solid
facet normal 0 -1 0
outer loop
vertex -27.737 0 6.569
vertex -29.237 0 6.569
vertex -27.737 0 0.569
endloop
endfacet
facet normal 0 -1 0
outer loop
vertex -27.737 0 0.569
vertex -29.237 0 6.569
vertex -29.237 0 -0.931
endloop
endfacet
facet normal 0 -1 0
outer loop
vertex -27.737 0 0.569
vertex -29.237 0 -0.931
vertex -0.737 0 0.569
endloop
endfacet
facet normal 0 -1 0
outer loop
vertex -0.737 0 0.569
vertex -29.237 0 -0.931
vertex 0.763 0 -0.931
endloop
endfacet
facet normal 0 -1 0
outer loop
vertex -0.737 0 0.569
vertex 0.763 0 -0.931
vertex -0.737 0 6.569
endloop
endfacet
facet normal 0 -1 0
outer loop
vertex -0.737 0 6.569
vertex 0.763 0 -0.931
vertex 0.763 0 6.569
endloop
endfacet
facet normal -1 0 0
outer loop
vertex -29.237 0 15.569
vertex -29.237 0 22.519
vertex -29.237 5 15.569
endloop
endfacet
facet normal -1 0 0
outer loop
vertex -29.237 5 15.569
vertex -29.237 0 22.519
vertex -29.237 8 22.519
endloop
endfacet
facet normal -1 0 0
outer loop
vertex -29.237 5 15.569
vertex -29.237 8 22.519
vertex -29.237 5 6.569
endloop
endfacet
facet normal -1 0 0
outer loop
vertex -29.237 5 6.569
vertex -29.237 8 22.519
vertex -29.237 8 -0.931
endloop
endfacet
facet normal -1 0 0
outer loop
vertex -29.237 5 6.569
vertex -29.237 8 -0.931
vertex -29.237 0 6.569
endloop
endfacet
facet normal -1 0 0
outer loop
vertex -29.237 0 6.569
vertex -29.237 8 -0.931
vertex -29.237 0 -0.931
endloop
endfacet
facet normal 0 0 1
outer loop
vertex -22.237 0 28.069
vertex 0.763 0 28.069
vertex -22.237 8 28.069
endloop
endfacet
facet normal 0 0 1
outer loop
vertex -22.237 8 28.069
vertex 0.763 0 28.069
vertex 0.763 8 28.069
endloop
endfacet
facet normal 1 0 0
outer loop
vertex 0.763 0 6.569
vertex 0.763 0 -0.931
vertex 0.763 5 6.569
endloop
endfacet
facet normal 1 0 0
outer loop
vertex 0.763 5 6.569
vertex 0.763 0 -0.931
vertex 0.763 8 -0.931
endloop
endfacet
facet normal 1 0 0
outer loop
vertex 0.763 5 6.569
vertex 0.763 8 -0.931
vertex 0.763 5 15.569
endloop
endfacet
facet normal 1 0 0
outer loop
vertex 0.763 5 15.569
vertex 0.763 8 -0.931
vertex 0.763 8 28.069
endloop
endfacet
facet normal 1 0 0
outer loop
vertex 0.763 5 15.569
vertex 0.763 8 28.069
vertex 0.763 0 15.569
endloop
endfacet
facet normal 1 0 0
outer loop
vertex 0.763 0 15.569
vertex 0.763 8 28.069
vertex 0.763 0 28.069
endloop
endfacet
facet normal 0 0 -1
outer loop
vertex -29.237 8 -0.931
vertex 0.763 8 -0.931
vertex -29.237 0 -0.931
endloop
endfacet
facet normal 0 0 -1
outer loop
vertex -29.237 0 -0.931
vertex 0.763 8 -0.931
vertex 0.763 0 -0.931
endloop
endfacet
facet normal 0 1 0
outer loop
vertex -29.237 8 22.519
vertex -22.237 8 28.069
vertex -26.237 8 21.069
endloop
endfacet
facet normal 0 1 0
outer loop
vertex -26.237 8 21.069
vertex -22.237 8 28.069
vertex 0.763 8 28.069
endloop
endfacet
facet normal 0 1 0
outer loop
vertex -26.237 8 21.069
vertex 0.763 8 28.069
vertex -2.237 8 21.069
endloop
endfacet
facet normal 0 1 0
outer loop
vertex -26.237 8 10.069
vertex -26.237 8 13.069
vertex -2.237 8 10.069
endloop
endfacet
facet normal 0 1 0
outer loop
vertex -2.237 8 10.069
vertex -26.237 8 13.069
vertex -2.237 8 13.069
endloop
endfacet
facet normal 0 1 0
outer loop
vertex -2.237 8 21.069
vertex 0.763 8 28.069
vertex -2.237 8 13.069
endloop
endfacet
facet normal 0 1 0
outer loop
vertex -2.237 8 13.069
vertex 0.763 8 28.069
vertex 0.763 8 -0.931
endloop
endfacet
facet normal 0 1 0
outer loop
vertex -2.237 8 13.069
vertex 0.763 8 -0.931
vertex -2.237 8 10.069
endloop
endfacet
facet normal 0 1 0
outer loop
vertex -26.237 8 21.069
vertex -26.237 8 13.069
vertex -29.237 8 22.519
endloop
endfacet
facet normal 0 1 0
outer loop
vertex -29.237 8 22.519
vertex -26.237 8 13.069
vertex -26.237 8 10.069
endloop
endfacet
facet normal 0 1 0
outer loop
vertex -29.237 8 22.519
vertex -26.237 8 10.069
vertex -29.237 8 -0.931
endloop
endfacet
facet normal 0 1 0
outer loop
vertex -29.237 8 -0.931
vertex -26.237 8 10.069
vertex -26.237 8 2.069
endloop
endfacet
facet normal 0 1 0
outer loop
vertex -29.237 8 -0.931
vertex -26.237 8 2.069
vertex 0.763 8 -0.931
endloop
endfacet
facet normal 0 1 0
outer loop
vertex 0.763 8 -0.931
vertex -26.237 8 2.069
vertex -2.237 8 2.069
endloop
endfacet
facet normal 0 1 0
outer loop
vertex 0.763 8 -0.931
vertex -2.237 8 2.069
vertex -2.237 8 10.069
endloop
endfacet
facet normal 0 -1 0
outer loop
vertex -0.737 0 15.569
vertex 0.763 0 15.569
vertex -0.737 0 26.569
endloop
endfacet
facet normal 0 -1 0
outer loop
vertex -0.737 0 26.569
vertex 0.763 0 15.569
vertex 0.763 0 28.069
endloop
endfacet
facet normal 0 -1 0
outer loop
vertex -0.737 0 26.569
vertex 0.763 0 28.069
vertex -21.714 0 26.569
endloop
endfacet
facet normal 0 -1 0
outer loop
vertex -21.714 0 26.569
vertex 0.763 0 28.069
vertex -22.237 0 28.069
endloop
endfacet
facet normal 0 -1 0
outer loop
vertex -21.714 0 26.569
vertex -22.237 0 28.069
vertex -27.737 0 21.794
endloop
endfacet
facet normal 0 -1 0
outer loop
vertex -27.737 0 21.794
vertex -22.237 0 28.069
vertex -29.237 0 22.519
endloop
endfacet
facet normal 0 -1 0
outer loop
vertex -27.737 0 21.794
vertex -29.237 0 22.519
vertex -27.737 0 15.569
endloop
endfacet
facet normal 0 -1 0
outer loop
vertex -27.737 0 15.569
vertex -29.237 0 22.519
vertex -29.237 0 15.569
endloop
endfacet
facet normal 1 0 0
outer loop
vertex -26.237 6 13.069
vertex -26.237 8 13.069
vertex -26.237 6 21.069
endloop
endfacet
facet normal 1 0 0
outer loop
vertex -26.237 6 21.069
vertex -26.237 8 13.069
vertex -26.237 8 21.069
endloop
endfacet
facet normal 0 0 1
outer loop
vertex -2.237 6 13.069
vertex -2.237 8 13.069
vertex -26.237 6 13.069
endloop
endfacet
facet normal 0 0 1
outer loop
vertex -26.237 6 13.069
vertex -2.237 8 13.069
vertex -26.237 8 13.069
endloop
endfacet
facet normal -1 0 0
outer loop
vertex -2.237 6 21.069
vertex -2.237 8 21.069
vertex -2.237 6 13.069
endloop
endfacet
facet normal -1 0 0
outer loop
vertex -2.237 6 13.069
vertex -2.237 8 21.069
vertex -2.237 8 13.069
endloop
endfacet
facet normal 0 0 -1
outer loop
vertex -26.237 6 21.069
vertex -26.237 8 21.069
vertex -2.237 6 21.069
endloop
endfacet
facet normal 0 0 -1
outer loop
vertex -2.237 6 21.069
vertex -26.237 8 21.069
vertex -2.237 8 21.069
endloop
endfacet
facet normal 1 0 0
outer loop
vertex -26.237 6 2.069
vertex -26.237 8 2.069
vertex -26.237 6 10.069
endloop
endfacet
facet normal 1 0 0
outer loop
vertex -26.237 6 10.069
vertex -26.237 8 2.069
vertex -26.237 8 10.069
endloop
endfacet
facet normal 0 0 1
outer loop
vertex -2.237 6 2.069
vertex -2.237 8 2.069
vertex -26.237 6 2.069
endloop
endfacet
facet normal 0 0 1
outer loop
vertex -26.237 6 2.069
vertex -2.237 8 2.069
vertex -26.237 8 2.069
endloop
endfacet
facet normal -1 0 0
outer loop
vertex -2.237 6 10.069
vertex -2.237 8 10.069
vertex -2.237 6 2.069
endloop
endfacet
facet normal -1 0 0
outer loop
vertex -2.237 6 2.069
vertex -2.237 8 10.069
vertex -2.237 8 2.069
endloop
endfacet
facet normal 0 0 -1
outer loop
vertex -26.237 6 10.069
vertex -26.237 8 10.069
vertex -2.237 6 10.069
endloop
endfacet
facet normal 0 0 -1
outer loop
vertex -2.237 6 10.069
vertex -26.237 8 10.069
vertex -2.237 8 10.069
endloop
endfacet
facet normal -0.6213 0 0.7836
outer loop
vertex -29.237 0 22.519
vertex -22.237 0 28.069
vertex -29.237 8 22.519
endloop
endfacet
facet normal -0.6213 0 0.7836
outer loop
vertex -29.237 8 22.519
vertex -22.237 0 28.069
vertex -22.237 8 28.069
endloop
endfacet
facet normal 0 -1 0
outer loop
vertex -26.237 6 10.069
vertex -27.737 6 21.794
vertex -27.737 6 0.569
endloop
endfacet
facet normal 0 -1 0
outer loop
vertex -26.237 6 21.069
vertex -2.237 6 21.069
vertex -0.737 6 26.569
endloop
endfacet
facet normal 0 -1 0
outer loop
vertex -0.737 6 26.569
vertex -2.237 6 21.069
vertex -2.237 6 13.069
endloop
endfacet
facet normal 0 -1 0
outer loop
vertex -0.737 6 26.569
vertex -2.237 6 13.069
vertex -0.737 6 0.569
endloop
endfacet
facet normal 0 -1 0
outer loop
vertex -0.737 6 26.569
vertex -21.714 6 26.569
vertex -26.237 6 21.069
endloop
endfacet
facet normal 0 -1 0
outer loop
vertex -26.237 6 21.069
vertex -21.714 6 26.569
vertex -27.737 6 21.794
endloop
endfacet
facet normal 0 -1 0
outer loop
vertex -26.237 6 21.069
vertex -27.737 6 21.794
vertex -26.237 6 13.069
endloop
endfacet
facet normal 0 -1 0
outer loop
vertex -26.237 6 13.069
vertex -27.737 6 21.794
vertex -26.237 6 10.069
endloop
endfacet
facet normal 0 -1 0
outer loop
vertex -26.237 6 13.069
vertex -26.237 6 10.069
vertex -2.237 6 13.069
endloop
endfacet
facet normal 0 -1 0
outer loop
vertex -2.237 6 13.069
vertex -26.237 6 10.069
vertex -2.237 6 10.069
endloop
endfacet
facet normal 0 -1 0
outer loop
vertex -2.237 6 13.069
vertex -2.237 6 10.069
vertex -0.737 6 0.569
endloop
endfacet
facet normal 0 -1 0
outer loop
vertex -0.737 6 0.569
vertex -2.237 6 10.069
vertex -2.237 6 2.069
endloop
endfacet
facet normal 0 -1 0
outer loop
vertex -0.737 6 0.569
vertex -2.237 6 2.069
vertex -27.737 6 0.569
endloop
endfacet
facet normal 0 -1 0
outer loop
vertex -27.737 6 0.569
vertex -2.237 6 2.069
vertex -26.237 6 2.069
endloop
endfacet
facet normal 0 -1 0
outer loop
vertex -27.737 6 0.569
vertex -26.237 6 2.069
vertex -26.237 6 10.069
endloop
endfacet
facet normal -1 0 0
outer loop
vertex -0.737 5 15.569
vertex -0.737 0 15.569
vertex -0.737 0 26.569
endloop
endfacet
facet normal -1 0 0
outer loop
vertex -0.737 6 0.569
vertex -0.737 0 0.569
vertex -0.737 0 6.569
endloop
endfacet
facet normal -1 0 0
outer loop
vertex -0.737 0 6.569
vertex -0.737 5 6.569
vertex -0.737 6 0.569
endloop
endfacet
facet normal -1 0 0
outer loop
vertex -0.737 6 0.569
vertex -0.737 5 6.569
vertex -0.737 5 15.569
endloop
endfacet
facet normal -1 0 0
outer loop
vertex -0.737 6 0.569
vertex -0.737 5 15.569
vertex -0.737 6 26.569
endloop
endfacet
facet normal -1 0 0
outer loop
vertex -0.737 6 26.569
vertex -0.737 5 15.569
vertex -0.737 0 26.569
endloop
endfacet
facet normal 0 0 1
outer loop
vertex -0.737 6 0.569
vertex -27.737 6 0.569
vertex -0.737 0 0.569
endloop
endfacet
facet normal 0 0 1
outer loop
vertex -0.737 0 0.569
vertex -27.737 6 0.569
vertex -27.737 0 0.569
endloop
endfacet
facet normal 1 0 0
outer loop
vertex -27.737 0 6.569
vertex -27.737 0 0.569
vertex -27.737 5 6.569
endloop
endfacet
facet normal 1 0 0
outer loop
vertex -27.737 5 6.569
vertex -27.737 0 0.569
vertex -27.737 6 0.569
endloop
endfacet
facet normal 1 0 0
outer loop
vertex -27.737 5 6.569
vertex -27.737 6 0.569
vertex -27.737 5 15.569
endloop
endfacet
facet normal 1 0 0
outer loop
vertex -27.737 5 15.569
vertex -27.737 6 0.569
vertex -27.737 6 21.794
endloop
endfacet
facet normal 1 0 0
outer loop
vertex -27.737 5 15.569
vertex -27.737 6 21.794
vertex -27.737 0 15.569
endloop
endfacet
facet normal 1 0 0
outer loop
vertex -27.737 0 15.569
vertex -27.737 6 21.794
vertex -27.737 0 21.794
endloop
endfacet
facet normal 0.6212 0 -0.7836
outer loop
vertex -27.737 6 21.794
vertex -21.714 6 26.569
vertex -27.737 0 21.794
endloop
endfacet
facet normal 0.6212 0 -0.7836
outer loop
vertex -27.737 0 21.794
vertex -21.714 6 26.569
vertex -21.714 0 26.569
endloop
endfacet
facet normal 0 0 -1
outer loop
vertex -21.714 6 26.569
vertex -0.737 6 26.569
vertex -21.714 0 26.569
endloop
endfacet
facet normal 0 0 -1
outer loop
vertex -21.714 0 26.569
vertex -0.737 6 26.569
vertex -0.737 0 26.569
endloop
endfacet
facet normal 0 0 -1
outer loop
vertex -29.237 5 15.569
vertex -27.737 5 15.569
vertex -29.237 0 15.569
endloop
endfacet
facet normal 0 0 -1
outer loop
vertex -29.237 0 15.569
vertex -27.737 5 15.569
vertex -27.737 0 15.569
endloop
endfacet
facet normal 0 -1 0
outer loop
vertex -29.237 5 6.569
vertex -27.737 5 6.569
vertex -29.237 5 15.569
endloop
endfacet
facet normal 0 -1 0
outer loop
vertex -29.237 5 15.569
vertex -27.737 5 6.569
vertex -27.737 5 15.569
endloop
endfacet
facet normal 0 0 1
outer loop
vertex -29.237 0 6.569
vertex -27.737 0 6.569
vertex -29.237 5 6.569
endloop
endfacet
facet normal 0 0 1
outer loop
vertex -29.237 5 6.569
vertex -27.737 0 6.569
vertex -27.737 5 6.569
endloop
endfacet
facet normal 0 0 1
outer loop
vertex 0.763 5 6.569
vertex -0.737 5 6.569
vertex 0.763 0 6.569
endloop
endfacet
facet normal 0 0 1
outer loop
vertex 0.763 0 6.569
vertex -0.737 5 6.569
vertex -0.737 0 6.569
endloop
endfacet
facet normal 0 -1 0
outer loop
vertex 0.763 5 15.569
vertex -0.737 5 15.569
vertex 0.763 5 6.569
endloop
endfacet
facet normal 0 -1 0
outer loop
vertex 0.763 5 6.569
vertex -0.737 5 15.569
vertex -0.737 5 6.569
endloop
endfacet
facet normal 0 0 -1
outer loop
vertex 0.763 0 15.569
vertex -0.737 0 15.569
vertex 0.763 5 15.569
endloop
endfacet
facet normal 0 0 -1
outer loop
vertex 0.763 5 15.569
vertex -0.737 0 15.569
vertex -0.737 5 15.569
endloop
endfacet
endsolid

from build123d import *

# Parameters (mm, degrees)
SKETCH1_W           = 30
SKETCH1_H           = 29
BOSS_EXTRUDE1_DEPTH = 8
SKETCH2_W           = 24
SKETCH2_H           = 8
CUT_EXTRUDE1_DEPTH  = 8
CUT_EXTRUDE2_DEPTH  = 8
CUT_EXTRUDE3_DEPTH  = 6
BELT_CUTOUT_W       = 9
BELT_CUTOUT_H       = 5
CUT_EXTRUDE4_DEPTH  = 30


with BuildPart() as part:
    # Sketch1 → Boss-Extrude1 (new body)
    with BuildSketch(Plane(origin=(0, 0, 0), x_dir=(1, 0, 0), z_dir=(0, 1, 0))):
        with Locations((-14.236607143, -13.569196429)):
            Rectangle(SKETCH1_W, SKETCH1_H)
    extrude(amount=BOSS_EXTRUDE1_DEPTH)

    # Sketch2 → Cut-Extrude1 (cut)
    with BuildSketch(Plane(origin=(0, 8, 0), x_dir=(1, 0, 0), z_dir=(0, 1, 0))):
        with Locations((-14.236607143, -6.069196429)):
            Rectangle(SKETCH2_W, SKETCH2_H)
        with Locations((-14.236607143, -17.069196429)):
            Rectangle(SKETCH2_W, SKETCH2_H)
    extrude(amount=-CUT_EXTRUDE1_DEPTH, mode=Mode.SUBTRACT)

    # Sketch3 → Cut-Extrude2 (cut)
    with BuildSketch(Plane(origin=(0, 8, 0), x_dir=(1, 0, 0), z_dir=(0, 1, 0))):
        Polygon((-29.236607143, -22.519140749), (-22.236607143, -28.069196429), (-29.236607143, -28.069196429), align=None)
    extrude(amount=-CUT_EXTRUDE2_DEPTH, mode=Mode.SUBTRACT)

    # cutout → Cut-Extrude3 (cut)
    with BuildSketch(Plane.XZ):
        Polygon((-0.736607143, 0.569196429), (-27.736607143, 0.569196429), (-27.736607143, 21.794168589), (-21.714109927, 26.569196429), (-0.736607143, 26.569196429), align=None)
    extrude(amount=-CUT_EXTRUDE3_DEPTH, mode=Mode.SUBTRACT)

    # belt_cutout → Cut-Extrude4 (cut)
    with BuildSketch(Plane.ZY.offset(29.236607143)):
        with Locations((11.069196429, 2.5)):
            Rectangle(BELT_CUTOUT_W, BELT_CUTOUT_H)
    extrude(amount=-CUT_EXTRUDE4_DEPTH, mode=Mode.SUBTRACT)


solid = part.part
